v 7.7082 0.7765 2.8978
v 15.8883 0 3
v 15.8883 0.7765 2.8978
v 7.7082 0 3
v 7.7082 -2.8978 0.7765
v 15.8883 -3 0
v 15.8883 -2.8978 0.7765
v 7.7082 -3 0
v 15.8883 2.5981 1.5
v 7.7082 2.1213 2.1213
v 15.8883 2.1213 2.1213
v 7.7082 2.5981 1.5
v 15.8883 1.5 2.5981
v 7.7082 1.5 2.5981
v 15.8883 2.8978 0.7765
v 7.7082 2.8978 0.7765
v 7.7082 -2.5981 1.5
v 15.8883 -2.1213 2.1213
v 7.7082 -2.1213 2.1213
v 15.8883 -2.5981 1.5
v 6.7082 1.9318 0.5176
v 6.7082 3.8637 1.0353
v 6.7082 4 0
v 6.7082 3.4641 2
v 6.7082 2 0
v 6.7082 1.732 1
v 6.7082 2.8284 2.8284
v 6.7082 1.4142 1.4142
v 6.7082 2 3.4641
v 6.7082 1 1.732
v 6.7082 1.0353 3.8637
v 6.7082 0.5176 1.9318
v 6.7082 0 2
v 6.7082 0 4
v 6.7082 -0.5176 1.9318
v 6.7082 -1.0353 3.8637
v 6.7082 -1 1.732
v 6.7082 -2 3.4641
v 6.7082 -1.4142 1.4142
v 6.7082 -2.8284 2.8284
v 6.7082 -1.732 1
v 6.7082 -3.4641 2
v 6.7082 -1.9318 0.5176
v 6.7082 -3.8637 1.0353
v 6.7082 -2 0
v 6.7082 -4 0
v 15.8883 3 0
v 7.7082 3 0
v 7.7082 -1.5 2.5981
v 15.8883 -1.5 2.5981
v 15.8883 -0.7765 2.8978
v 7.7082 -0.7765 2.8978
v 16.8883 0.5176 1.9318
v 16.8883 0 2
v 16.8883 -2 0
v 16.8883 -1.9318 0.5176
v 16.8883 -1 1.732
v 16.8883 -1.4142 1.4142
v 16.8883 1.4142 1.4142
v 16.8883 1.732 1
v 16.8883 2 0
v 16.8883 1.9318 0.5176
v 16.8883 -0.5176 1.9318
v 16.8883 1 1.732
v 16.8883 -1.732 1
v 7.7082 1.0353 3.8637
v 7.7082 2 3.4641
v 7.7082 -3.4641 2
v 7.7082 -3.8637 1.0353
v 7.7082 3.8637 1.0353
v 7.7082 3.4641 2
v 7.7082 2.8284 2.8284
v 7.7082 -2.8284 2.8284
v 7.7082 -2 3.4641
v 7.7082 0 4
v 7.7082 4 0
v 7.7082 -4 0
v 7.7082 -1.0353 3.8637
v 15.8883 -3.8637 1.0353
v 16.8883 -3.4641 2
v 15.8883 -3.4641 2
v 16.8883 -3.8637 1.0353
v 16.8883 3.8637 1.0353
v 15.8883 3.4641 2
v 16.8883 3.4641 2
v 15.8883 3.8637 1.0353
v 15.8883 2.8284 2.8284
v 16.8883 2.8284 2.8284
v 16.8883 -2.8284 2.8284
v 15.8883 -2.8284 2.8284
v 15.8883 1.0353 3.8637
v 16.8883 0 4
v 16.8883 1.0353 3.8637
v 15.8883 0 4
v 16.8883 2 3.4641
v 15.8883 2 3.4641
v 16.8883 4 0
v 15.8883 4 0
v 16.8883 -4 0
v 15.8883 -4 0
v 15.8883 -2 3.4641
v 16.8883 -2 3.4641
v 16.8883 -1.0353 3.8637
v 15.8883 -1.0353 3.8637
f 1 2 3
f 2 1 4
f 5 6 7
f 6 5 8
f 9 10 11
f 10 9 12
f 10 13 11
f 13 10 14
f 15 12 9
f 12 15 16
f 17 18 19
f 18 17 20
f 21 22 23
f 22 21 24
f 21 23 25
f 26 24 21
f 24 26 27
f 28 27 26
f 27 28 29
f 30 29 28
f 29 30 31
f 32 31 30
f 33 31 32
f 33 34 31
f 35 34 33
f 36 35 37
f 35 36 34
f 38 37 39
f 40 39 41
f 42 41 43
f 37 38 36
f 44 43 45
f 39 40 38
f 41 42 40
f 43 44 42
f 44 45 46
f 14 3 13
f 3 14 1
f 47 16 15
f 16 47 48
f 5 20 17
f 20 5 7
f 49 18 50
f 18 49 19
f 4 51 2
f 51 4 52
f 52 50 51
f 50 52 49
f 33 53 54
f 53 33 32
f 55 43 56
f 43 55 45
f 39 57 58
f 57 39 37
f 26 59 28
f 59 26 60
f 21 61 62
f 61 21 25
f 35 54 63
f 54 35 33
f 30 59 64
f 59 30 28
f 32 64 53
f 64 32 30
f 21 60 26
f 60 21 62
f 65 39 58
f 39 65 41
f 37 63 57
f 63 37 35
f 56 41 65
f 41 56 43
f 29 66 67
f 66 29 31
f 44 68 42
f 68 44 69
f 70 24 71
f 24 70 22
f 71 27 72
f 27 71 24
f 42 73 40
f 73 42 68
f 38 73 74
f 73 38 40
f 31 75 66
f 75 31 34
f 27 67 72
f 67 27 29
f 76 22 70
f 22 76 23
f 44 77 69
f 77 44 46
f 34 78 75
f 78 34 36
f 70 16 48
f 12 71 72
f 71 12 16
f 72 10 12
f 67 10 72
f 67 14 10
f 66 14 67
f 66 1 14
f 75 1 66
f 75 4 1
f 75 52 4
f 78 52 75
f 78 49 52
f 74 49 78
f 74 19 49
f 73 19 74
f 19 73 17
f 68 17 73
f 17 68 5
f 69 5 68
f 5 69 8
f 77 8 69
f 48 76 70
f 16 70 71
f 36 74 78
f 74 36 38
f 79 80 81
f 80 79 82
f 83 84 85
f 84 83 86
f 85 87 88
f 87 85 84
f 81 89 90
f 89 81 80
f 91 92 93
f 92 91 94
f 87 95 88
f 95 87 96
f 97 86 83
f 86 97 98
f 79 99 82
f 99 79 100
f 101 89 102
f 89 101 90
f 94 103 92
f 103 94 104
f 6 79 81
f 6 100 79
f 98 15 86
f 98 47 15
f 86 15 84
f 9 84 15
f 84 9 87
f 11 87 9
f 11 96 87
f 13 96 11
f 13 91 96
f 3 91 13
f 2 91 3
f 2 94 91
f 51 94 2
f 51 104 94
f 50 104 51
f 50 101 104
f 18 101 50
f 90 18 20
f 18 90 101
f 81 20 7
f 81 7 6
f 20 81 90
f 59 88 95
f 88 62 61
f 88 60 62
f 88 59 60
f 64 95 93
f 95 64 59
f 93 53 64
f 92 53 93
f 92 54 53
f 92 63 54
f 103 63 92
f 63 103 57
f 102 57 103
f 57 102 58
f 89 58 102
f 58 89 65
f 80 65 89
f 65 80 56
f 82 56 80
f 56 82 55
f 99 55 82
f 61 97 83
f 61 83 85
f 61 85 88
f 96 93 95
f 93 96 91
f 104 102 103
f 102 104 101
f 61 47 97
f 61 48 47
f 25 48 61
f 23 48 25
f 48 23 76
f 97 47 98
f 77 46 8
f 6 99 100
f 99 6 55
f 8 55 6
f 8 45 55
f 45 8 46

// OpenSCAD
// file: ../build_environments.scad
// build_environments.scad: modules to build level sections
//

module pool(diameter=10.0, wall_height=2.0, step_width=3.0, connections=[])
{
    difference() {
        union() {
        difference() {
            cylinder(h=0.5,r1=diameter+step_width,r2=diameter+step_width,$fn=48);
            translate([0,0,-0.1])
                cylinder(h=0.7,r1=diameter,r2=diameter,$fn=48);
        }
        difference() {
            cylinder(h=wall_height,r1=diameter+step_width+1.0,r2=diameter+step_width+1.0,$fn=48);
            translate([0,0,-0.1])
                cylinder(h=wall_height+0.2,r1=diameter+step_width,r2=diameter+step_width,$fn=48);
        }
        }
    
        for (c = connections)
        {
            rotate([0,90,0]) {
                angle = atan2(c[1],c[0]);
                rotate([-angle,0,0]) {
                    cylinder(h=diameter+5.0,r1=c[2],r2=c[2],$fn=48);
                }
            }
        }
    }
}

module straight(length=10.0, width=2.0, dy1=0.0, dy2=0.0, dz=0.0)
{
    dims = [0, 0, 0, 0, 0, (dz/length)];
    matrix = [
        [ 1, dims[0], dims[1], 0 ],
        [ dims[2], 1, dims[4], 0 ],
        [ dims[5], dims[3], 1, 0 ],
        [ 0, 0, 0, 1 ]
    ];
    multmatrix(matrix)
    difference() {
        translate([dy1,0,0])
        union() {
            rotate([0,90,0]) {
                difference() {
                    cylinder(h=(length-dy1-dy2),r1=width+1.0,r2=width+1.0,$fn=24);
                    translate([0,0,-0.1])
                        cylinder(h=(length-dy1-dy2+0.2),r1=width,r2=width,$fn=24);
                }
                difference() {
                    cylinder(h=1.0,r1=width+2.0,r2=width+2.0,$fn=24);
                    translate([0,0,-0.1])
                        cylinder(h=1.2,r1=width,r2=width,$fn=24);
                }
                translate([0,0,(length-dy1-dy2)-1.0]) {
                    difference() {
                        cylinder(h=1.0,r1=width+2.0,r2=width+2.0,$fn=24);
                        translate([0,0,-0.1])
                            cylinder(h=1.2,r1=width,r2=width,$fn=24);
                    }
                }
            }
        }
        translate([0,0,-(2*width+4.0)/2])
            cube([3*length,3*length,2*width+4.0],center=true);
    }
}

module curve(p0=[0,0], center=[0,0], dir=1, angle=0.0, width=2.0)
{
    radius = sqrt((p0[0]-center[0])*(p0[0]-center[0]) + (p0[1]-center[1])*(p0[1]-center[1]));
    if (dir == 0) {
        difference() {
            rotate([0,0,-90])
            difference() {
                rotate_extrude(angle = angle, convexity = 10, $fn=32)
                    translate([radius, 0, 0])
                        circle(r = width+1.0,$fn=24);
                rotate([0,0,-1.0])
                    rotate_extrude(angle = angle+2.0, convexity = 10, $fn=32)
                        translate([radius, 0, 0])
                            circle(r = width,$fn=24);
            }
            translate([0,0,-(2*width+4.0)/2])
                cube([5*radius,5*radius,2*width+4.0],center=true);
        }
    }
    else {
        difference() {
            rotate([0,0,90])
            difference() {
                rotate_extrude(angle = -angle, convexity = 10, $fn=32)
                    translate([radius, 0, 0])
                        circle(r = width+1.0,$fn=24);
                rotate([0,0,1.0])
                    rotate_extrude(angle = -angle-2.0, convexity = 10, $fn=32)
                        translate([radius, 0, 0])
                            circle(r = width,$fn=24);
            }
            translate([0,0,-(2*width+4.0)/2])
                cube([5*radius,5*radius,2*width+4.0],center=true);
        }
    }

}

// test pool
//pool(diameter=12.0000, wall_height=3.0000, step_width=3.0000, connections=[[0.0000,-26.0000,2.0000], [23.6074,0.0000,2.0000]]);

// test straight, slope
//straight(length=26.0000, width=2.0000, dy1=11.8322, dy2=6.7082, dz=0.0000);
//straight(length=29.1549, width=12.0000, dy1=0.0000, dy2=0.0000, dz=-15.0000);

// test curve
//curve(p0=[23.6074, 0.0000], center=[23.6074, 5.0000], dir=0, angle=60.1011, width=2.0000);
//curve(p0=[33.6426, 12.4219], center=[37.9771, 9.9295], dir=1, angle=120.4627, width=2.0000);
// main file
use <../build_environments.scad>;
straight(length=21.4709, width=2.0000, dy1=6.7082, dy2=4.5826, dz=0.0000);
